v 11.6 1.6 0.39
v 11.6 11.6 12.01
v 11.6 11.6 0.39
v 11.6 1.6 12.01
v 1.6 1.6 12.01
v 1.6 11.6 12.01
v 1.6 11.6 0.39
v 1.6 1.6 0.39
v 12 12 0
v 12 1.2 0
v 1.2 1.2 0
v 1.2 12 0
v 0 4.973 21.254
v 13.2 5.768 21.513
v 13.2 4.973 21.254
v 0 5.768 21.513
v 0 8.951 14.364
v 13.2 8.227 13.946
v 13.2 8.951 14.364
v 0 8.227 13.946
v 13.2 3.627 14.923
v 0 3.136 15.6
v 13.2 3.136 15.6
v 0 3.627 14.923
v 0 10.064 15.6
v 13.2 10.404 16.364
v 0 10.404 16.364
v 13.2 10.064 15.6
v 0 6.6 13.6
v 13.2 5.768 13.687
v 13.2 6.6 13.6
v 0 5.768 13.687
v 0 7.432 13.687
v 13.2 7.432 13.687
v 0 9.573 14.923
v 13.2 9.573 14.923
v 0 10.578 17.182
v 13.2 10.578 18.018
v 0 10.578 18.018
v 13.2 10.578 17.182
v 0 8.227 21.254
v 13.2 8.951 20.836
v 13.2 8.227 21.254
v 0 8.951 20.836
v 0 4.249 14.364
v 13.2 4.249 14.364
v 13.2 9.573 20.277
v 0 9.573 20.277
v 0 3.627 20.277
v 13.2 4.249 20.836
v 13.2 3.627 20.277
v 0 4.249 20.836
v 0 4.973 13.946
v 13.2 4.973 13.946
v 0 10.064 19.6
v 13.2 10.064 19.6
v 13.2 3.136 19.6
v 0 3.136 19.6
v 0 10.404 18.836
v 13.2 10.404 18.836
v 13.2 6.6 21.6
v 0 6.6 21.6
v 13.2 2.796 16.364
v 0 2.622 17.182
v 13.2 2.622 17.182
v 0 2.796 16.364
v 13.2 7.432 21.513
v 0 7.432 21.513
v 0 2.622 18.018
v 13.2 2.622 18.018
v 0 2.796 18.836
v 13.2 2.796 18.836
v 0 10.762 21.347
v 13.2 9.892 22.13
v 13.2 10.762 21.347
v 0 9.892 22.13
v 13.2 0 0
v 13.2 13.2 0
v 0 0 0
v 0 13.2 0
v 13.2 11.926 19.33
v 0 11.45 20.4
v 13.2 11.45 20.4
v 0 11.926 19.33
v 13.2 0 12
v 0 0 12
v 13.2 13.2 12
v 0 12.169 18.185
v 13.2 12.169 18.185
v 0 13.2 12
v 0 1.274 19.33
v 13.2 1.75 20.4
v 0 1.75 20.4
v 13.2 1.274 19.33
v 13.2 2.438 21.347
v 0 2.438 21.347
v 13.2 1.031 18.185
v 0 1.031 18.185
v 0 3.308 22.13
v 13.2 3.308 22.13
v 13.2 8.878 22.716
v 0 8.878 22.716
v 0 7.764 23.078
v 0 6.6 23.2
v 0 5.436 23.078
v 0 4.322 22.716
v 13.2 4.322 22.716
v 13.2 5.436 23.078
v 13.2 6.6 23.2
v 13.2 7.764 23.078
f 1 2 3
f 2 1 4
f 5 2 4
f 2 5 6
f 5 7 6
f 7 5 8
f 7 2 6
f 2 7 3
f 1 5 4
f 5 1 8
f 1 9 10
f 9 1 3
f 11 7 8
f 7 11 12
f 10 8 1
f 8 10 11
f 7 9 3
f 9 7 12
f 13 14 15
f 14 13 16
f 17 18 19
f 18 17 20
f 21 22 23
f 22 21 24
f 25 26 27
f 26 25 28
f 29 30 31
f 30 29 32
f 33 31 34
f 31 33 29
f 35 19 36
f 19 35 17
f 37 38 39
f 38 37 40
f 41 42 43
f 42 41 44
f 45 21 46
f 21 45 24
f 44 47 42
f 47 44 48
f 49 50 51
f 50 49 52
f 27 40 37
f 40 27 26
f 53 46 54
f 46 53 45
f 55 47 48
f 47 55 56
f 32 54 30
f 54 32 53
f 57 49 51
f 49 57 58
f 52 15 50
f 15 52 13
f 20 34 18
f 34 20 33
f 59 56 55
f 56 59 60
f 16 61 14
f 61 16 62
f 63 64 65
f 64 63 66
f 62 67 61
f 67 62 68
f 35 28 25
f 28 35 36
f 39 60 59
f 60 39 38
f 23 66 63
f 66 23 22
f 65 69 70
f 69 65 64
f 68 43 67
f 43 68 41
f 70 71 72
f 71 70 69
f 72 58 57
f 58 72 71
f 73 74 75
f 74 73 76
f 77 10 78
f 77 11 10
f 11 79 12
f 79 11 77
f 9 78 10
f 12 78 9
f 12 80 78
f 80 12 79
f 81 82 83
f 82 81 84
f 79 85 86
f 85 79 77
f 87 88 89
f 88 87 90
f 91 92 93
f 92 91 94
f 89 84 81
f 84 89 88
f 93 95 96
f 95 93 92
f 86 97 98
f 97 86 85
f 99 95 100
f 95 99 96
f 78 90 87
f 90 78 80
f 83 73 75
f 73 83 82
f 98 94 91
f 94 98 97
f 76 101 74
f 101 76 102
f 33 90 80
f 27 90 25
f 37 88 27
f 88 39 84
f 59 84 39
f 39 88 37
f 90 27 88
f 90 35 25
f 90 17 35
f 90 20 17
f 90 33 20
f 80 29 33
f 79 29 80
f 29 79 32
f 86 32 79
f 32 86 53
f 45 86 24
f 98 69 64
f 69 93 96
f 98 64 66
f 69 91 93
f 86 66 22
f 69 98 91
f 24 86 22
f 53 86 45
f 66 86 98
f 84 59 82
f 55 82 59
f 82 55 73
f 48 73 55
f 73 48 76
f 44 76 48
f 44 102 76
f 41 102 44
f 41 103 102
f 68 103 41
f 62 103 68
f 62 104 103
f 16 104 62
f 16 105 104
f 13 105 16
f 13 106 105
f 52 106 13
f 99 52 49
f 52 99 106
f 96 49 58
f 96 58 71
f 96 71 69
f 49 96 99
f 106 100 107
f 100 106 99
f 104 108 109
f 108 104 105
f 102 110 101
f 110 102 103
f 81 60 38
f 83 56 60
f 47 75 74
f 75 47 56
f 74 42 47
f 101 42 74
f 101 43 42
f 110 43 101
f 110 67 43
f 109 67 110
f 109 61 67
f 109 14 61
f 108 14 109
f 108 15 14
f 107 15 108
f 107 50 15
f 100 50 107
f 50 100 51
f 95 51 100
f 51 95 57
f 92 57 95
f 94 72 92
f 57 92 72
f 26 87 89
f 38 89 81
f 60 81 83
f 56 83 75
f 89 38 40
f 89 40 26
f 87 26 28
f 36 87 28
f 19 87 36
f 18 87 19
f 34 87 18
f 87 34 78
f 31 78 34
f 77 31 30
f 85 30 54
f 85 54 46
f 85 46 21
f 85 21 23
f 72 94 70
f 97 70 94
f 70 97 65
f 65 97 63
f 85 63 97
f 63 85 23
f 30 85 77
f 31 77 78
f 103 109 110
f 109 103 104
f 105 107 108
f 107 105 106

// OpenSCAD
// Параметры
wall_width = 8;          // Расстояние от трубы до L-стенки
wall_height = 32.6;      // Не используется
profile_size = 10;       // Внутренний размер трубы
profile_length = 100;    // Не используется
corner_size = 8;         // Не используется
lid_height = 1.6;
hook_width = 1.6;        // Толщина L-стенки
hook_internal = 1.6;     // Толщина стенки трубы
hook_height = 12;         // Высота трубы и стенки
hook_split = 2;          // Сколько срезать в углу, чтобы отделить крепёж X и Y
chamfer = 0.4;  // ширина фаски

tube_inner_diameter = 8;

snap_depth = 0.8;        // насколько выступают внутрь
snap_step = 1.2;    // по вертикали: 1 шаг – рост толщины наплыва от 0, 1 шаг толщина snap_depth, 1 шаг уходим в 0

// Наружный размер трубы
outer_size = profile_size + 2 * hook_internal;  // 12.4 мм

// Модуль трубы (оставляем на месте, как в шаге 1)
module tube() {
    difference() {
        // Внешний куб (от 0 до outer_size)
        cube([outer_size, outer_size, hook_height]);
        // Внутренняя полость (смещена на толщину стенки)
        translate([hook_internal, hook_internal, -1])
            cube([profile_size, profile_size, hook_height + 2]);
    }
}

// Модуль трубы с фаской через hull()
module tube_outer() {
    // 1. Наружная часть трубы
    cube([outer_size, outer_size, hook_height]);
}

module tube_inner() {
    // 2. Внутренняя полость
    // Она будет формироваться в два этапа:
    // - сначала основная часть
    // - потом фаска отдельно, но проще сразу вычесть hull-форму

    union() {
        // Основная внутренняя полость (без фаски)
        translate([hook_internal, hook_internal, -0.01])
            cube([profile_size, profile_size, hook_height+0.02]);

        // Фаска: расширенная книзу часть
        translate([hook_internal, hook_internal, 0])
            hull() {
                // Верх фаски (на уровне chamfer) — базовый размер
                translate([0, 0, chamfer - 0.02])
                    cube([profile_size, profile_size, 0.01]);

                // Низ фаски (на уровне 0) — расширенный
                translate([-chamfer, -chamfer, -0.01])
                    cube([profile_size + 2*chamfer, profile_size + 2*chamfer, 0.01]);
            }
    }
    
}

module l_hook() {
    hook_offset = hook_width + wall_width;
    hook_length = profile_size + hook_internal*2 + wall_width + hook_width;
    
    // Вертикальная часть L (параллельно оси Y)
    // Она начинается от уровня верхней грани трубы
    translate([-hook_offset, -hook_offset, 0])
        cube([hook_width, hook_length, hook_height]);
    
    // Горизонтальная часть L (параллельно оси X)
    // Она начинается от уровня правой грани трубы
    translate([-hook_offset, -hook_offset, 0])
        cube([hook_length, hook_width, hook_height]);
 }
 
module split_hook() {
    hook_offset = hook_width + wall_width;
    hook_length = profile_size + hook_internal*2 + wall_width + hook_width;
    
    // Вертикальная часть L (параллельно оси Y)
    // Она начинается от уровня верхней грани трубы
    translate([-hook_offset, -hook_offset+hook_split, 0])
        cube([hook_width, hook_length-hook_split, hook_height]);
    
    // Горизонтальная часть L (параллельно оси X)
    // Она начинается от уровня правой грани трубы
    translate([-hook_offset+hook_split, -hook_offset, 0])
        cube([hook_length-hook_split, hook_width, hook_height]);
    
    // --- Наплывы вдоль верхнего края ---
    
    // Наплыв на вертикальной части (идёт вдоль всей длины, сверху)
    hull() {
        translate([-wall_width, 
                   -hook_offset + hook_split, 
                   hook_height - snap_step*2])
            cube([snap_depth, hook_length - hook_split, snap_step]);
        translate([-wall_width,
                   -hook_offset + hook_split, 
                   hook_height - snap_step*3])
            cube([0.01, hook_length - hook_split, snap_step*3]);
    }

    // Наплыв на горизонтальной части (идёт вдоль всей длины, сверху)
    hull() {
        translate([-hook_offset + hook_split,
                   -wall_width, 
                   hook_height - snap_step*2])
            cube([hook_length - hook_split, snap_depth, snap_step]);
        translate([-hook_offset + hook_split, 
                   -wall_width,
                   hook_height - snap_step*3])
            cube([hook_length - hook_split, 0.01, snap_step*3]);
    }
    
        
}
 

 // Модуль донышка (соединяет крюк и трубу, не закрывая отверстие)
module bottom_plate() {
    hook_offset = hook_width + wall_width;
    hook_length = profile_size + hook_internal*2 + wall_width + hook_width;
    
    // Область, которую занимает донышко (прямоугольник от края крюка до края трубы)
    plate_x = hook_offset + outer_size;  // ширина пластины по X
    plate_y = hook_offset + outer_size;  // ширина пластины по Y
    
    // Основание пластины
    translate([-hook_offset, -hook_offset, 0])
        cube([plate_x, plate_y, lid_height]);
}

module top_part() {
    difference() {
        union() {
            tube_outer();
            l_hook();
            bottom_plate();        
        }
        tube_inner();
    }
}

module bottom_part() {
    union() {
        difference() {
            tube_outer();
            mirror([0,0,1])
                translate([0,0,-hook_height])
                    tube_inner();
        }
        bottom_plate();        
    }
}

module holder_part() {
    // Горизонтальная цилиндрическая труба, лежащая на основной
    // Внутренний диаметр 8 мм, внешний диаметр = inner_diameter + 2*стенка
    inner_diameter = tube_inner_diameter;
    outer_diameter = inner_diameter + 2 * hook_internal;  // 8 + 2*1.6 = 11.2 мм


    difference() {
        hull() {
            tube_outer();
            // Располагаем трубу горизонтально (вдоль оси X) на верхней грани квадратной трубы
            translate([0, outer_size/2, hook_height+outer_diameter/2])
                rotate([0, 90, 0])
                // Внешний цилиндр
                cylinder(h = outer_size, r = outer_diameter/2, $fn = 30);
        }


        union() {
            tube_inner();
            translate([0, outer_size/2, hook_height+outer_diameter/2])
                rotate([0, 90, 0])
                // Внутреннее отверстие
                translate([0, 0, -1])
                    cylinder(h = outer_size + 2, r = inner_diameter/2, $fn = 30);
        }
    }
    
}

//top_part();
//bottom_part();
holder_part();
